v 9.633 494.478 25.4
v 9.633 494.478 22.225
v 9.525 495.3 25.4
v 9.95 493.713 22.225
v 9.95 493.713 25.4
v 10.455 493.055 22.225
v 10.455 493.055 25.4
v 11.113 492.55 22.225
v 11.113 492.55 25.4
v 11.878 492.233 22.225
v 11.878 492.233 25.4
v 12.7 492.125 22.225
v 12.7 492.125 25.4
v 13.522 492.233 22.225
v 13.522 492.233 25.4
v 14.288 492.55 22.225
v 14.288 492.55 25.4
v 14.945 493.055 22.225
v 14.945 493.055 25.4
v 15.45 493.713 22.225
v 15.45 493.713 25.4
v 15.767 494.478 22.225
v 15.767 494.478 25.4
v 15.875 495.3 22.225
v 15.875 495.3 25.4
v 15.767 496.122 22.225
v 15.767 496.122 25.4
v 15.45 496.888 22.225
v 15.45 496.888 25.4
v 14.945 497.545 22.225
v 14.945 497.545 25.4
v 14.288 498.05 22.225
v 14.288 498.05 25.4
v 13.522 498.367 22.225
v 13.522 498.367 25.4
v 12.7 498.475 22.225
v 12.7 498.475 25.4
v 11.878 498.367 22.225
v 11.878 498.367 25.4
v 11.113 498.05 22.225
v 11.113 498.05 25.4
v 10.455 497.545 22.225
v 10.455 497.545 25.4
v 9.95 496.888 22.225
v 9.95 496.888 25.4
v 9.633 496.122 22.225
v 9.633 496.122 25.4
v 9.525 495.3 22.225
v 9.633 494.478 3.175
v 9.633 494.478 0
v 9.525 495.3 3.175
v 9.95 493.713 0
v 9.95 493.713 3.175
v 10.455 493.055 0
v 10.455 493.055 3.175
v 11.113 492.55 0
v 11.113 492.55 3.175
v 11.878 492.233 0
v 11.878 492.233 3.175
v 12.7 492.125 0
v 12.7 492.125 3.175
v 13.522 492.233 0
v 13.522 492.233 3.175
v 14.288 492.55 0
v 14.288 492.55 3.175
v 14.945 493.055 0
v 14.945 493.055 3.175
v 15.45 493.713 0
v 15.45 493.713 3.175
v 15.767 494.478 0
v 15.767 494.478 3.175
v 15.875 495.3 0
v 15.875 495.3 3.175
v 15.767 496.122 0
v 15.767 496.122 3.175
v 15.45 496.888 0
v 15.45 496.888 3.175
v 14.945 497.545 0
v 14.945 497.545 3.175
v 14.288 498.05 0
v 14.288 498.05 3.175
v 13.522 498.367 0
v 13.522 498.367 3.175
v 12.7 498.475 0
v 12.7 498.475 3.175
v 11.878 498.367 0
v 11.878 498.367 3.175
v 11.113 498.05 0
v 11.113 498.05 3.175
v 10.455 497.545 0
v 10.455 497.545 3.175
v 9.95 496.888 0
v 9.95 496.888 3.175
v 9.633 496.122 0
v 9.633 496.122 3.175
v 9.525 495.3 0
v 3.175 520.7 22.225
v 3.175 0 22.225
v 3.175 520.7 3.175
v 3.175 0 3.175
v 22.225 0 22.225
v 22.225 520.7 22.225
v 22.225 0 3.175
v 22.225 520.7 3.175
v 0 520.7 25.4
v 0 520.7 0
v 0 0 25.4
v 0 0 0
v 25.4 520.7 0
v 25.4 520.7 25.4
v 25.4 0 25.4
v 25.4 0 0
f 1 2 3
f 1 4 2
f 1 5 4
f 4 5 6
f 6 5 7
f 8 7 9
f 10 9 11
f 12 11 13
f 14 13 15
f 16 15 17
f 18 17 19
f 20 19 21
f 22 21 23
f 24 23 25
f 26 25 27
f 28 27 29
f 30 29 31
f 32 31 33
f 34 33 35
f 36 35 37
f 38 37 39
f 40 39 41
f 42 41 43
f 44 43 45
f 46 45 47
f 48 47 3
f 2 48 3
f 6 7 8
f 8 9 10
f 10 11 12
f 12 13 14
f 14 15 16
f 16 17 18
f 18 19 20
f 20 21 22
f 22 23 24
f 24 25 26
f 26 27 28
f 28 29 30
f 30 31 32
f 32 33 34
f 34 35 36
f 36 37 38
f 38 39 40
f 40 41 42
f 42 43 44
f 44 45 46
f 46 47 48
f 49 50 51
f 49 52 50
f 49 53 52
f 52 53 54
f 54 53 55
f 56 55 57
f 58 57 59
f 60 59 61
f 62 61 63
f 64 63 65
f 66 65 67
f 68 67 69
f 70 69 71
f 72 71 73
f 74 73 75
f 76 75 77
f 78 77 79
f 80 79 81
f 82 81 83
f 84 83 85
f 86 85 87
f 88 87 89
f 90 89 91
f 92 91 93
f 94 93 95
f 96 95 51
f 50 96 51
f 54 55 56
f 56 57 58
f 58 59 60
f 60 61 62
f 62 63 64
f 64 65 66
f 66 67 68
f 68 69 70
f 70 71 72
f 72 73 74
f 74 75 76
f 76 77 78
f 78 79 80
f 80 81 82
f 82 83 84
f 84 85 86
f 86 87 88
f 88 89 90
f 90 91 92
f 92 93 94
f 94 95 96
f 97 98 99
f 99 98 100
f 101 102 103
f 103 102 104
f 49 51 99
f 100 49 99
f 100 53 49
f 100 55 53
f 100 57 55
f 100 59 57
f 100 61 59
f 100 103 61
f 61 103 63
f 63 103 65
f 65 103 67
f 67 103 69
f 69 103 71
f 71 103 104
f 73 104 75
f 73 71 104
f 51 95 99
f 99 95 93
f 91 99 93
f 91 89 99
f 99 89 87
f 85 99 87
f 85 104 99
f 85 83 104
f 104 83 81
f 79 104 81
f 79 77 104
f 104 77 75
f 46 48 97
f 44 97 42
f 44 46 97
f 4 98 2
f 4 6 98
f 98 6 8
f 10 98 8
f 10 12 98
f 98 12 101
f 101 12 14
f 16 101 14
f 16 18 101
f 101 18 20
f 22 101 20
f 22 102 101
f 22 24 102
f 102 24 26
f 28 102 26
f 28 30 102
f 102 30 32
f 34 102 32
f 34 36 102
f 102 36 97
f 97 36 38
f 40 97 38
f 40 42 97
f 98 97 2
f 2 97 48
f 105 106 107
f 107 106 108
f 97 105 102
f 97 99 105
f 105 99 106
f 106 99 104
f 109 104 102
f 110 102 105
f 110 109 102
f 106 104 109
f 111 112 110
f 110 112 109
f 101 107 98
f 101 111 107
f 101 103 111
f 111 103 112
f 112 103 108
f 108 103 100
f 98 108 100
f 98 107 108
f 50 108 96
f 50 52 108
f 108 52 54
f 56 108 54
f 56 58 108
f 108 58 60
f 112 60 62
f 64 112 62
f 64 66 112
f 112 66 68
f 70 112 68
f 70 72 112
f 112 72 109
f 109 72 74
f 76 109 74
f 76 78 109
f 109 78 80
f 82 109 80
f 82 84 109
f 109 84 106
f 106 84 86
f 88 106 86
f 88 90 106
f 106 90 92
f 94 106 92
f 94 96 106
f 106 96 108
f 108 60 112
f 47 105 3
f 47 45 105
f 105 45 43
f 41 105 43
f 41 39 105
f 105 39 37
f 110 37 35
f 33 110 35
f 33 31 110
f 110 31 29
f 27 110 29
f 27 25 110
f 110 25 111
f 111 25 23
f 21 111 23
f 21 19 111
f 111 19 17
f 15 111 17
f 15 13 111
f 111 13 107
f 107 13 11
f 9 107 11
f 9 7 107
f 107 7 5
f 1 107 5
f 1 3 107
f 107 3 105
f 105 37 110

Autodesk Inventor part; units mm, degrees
ref_plane "YZ Plane" through (0, 0, 0) normal (1, 0, 0) x (0, 1, 0)
ref_plane "XZ Plane" through (0, 0, 0) normal (0, 1, 0) x (-1, 0, 0)
ref_plane "XY Plane" through (0, 0, 0) normal (0, 0, 1) x (1, 0, 0)
sketch "Sketch1" plane through (0, 0, 0) normal (0, 0, 1) x (1, 0, 0)
  line L0 (0, 0) -> (25.4, 0)
  line L1 (25.4, 0) -> (25.4, 520.7)
  line L2 (25.4, 520.7) -> (0, 520.7)
  line L3 (0, 520.7) -> (0, 0)
  dimension "d0" = 25.4
  dimension "d1" = 520.7
extrude "Extrusion1" add sketch "Sketch1" along normal blind 25.4
shell "Shell1" thickness 3.175 removed faces 2 at (16.9333, 520.7, 8.4667) at (8.4667, 0, 8.4667)
sketch "Sketch2" plane through (0, 0, 0) normal (0, 0, -1) x (-1, 0, 0)
  line L0 (0, 520.7) -> (0, 0) projected
  line L1 (-25.4, 520.7) -> (0, 520.7) projected
  circle A0 centre (-12.7, 495.3) radius 3.175
  dimension "d5" = 12.7
  dimension "d6" = 25.4
  dimension "d7" = 6.35
extrude "Extrusion2" cut sketch "Sketch2" against normal through all
properties part number "CentralColumnInner" material "Aluminum-6061"
